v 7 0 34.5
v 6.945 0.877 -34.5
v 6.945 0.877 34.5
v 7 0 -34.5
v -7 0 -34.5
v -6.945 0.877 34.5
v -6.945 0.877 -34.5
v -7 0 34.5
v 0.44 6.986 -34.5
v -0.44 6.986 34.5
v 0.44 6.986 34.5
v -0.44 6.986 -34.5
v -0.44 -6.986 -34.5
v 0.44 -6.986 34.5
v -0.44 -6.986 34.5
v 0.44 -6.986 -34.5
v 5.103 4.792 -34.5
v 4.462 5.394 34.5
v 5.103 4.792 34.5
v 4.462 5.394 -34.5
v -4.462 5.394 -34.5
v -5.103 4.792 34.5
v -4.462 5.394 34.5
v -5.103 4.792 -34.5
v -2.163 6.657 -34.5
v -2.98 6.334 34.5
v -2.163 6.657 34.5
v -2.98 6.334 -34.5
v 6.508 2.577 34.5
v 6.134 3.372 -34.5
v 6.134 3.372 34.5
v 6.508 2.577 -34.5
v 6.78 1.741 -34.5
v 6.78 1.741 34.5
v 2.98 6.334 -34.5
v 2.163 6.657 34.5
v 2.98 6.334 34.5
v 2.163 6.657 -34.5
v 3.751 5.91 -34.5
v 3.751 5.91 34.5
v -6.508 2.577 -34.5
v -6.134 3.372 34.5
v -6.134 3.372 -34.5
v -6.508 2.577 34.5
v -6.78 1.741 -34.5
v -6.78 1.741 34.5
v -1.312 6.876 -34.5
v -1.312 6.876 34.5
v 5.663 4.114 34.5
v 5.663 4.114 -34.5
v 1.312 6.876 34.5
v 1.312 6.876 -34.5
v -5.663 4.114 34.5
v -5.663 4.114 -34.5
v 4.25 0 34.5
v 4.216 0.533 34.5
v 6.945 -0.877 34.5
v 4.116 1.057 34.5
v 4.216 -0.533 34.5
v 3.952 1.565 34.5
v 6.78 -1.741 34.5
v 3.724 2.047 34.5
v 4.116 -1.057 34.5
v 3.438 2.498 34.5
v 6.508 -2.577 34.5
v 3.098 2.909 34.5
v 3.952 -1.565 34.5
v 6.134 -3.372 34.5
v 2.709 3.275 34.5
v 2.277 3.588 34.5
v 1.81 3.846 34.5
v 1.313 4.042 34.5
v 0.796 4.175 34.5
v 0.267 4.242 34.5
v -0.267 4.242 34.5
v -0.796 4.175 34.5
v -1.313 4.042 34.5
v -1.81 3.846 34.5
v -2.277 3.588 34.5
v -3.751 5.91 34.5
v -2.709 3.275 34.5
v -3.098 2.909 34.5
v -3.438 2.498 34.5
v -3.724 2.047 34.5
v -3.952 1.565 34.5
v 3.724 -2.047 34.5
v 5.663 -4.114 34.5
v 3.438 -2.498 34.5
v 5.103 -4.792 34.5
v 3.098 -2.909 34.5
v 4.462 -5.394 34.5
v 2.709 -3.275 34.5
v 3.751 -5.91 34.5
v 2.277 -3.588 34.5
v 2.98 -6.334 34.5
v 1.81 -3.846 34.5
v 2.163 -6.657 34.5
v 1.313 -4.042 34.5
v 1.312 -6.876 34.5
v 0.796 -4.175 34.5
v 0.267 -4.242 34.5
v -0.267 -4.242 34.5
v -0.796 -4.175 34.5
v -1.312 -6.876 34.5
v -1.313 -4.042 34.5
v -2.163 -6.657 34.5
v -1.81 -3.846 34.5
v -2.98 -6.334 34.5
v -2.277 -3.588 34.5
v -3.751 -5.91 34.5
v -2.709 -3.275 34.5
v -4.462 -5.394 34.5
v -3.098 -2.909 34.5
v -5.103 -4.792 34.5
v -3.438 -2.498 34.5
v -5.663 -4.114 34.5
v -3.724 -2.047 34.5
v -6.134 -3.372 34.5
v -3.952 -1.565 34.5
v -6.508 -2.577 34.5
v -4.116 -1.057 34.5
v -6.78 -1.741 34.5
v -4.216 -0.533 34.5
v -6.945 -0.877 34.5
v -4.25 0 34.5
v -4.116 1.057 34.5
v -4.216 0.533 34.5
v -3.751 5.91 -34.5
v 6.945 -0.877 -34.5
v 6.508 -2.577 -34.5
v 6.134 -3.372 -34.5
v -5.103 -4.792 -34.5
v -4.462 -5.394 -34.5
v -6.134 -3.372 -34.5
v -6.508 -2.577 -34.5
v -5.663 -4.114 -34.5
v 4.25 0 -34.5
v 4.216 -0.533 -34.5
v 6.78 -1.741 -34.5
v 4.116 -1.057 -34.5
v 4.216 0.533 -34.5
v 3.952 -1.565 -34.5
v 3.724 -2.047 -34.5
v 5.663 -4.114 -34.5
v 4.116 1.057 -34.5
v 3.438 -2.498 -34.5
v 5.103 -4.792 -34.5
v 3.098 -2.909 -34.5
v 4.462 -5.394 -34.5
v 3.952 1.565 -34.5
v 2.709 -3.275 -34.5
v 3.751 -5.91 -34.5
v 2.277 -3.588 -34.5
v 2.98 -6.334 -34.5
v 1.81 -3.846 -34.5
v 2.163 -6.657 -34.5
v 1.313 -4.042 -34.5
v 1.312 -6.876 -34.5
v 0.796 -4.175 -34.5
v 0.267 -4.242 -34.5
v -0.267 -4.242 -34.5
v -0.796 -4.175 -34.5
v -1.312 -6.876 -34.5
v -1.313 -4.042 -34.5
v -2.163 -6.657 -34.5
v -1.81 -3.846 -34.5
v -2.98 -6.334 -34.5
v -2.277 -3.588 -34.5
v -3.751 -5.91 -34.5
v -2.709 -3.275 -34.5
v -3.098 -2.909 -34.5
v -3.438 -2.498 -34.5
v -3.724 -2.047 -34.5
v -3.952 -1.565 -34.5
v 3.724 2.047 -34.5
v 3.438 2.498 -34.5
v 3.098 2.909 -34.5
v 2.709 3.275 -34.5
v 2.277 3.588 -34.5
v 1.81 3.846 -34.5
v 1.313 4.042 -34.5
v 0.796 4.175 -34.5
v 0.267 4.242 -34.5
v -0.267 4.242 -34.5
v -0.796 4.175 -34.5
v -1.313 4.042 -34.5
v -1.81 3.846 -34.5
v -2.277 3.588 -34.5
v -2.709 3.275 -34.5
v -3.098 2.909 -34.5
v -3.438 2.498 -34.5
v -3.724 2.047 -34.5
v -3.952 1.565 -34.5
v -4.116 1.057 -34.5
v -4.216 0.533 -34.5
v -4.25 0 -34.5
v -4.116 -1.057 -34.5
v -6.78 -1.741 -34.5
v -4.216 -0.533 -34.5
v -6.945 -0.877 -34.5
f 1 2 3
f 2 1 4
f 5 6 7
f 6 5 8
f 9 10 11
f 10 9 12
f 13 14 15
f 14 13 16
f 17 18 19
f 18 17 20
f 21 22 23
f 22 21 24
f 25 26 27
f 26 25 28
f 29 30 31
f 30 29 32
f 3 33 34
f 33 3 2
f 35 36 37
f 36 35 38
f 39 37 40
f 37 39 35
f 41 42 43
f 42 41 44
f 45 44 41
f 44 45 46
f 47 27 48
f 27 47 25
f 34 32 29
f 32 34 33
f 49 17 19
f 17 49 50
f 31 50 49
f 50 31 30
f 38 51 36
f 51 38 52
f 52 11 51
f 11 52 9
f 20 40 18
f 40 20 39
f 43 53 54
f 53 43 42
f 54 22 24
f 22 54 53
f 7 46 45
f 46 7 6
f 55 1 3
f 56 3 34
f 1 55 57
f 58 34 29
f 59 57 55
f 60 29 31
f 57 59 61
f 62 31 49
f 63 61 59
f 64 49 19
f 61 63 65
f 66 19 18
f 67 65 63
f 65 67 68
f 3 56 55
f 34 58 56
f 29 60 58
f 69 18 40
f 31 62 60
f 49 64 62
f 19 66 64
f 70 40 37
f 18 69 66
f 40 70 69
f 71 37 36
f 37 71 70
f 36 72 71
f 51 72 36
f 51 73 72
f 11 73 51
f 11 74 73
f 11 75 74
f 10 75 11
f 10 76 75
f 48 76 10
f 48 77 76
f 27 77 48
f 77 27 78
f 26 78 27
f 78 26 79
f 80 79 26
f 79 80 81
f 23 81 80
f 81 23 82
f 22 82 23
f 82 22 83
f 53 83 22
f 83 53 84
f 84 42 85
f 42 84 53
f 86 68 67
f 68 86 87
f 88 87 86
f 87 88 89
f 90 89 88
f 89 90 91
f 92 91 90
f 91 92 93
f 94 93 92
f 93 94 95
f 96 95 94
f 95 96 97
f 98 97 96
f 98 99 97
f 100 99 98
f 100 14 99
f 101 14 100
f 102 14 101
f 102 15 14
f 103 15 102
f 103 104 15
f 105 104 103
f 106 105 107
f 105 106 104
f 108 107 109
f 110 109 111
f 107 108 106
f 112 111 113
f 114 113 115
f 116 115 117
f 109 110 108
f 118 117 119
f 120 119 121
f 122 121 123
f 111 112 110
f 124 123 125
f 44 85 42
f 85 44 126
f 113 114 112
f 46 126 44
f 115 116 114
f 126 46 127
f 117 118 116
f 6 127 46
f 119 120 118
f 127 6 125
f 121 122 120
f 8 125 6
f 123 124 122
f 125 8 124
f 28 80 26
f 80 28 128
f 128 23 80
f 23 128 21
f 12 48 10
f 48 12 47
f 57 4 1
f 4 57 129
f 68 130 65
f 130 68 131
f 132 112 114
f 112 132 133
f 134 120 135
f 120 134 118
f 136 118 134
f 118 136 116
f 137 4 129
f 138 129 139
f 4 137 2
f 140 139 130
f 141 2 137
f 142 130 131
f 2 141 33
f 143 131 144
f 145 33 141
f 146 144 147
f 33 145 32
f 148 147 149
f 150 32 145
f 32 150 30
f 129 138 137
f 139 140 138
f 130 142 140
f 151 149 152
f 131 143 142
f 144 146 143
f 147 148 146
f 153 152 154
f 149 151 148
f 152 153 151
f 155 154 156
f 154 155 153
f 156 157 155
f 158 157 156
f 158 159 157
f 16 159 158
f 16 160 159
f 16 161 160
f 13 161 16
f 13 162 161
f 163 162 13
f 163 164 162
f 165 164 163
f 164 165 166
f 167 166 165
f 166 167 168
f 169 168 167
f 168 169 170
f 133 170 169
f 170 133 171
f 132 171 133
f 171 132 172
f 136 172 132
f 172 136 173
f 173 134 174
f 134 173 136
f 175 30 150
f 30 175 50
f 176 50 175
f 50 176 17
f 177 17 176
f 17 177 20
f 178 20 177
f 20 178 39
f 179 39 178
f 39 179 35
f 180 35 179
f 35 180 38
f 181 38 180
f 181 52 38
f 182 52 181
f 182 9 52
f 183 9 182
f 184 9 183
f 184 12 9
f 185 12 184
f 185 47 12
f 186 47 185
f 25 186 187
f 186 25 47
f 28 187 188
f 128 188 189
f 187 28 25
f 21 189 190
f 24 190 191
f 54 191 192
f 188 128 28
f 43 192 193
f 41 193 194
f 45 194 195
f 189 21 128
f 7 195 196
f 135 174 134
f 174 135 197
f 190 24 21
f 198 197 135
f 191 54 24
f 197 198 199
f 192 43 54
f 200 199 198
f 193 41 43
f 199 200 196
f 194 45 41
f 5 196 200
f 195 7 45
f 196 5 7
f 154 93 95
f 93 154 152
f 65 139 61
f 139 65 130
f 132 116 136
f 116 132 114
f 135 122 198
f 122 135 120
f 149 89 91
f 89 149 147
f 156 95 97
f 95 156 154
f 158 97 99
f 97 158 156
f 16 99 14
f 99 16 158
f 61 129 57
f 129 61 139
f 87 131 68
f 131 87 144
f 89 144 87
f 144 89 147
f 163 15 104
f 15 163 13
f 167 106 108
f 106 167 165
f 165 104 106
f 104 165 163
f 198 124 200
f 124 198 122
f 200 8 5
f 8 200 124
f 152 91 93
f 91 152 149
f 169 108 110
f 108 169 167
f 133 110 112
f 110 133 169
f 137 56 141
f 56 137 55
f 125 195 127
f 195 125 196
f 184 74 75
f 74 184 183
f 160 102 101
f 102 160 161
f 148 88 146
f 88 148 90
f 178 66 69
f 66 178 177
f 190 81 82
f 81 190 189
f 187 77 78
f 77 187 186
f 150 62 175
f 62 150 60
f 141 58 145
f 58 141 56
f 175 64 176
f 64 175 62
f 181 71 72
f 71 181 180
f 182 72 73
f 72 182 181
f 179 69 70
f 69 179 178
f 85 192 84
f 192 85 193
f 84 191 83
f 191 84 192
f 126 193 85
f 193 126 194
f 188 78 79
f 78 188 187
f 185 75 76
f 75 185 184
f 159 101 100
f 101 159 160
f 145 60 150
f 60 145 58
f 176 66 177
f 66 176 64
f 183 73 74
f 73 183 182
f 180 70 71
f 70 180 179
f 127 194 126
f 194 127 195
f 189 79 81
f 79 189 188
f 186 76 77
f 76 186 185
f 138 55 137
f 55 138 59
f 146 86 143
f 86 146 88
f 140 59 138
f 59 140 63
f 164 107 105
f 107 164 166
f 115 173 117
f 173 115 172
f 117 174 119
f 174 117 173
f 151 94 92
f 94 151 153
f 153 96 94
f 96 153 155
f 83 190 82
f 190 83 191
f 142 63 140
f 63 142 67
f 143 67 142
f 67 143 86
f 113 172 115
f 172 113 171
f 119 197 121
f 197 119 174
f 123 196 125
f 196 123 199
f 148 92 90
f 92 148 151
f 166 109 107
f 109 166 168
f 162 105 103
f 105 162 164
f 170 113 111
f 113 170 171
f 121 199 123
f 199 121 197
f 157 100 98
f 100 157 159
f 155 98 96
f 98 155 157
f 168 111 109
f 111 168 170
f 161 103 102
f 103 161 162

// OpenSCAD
$fn = 50;


difference() {
	union() {
		translate(v = [0, 0, -34.5000000000]) {
			cylinder(h = 69, r = 7.0000000000);
		}
	}
	union() {
		translate(v = [0, 0, -100.0000000000]) {
			cylinder(h = 200, r = 4.2500000000);
		}
	}
}
